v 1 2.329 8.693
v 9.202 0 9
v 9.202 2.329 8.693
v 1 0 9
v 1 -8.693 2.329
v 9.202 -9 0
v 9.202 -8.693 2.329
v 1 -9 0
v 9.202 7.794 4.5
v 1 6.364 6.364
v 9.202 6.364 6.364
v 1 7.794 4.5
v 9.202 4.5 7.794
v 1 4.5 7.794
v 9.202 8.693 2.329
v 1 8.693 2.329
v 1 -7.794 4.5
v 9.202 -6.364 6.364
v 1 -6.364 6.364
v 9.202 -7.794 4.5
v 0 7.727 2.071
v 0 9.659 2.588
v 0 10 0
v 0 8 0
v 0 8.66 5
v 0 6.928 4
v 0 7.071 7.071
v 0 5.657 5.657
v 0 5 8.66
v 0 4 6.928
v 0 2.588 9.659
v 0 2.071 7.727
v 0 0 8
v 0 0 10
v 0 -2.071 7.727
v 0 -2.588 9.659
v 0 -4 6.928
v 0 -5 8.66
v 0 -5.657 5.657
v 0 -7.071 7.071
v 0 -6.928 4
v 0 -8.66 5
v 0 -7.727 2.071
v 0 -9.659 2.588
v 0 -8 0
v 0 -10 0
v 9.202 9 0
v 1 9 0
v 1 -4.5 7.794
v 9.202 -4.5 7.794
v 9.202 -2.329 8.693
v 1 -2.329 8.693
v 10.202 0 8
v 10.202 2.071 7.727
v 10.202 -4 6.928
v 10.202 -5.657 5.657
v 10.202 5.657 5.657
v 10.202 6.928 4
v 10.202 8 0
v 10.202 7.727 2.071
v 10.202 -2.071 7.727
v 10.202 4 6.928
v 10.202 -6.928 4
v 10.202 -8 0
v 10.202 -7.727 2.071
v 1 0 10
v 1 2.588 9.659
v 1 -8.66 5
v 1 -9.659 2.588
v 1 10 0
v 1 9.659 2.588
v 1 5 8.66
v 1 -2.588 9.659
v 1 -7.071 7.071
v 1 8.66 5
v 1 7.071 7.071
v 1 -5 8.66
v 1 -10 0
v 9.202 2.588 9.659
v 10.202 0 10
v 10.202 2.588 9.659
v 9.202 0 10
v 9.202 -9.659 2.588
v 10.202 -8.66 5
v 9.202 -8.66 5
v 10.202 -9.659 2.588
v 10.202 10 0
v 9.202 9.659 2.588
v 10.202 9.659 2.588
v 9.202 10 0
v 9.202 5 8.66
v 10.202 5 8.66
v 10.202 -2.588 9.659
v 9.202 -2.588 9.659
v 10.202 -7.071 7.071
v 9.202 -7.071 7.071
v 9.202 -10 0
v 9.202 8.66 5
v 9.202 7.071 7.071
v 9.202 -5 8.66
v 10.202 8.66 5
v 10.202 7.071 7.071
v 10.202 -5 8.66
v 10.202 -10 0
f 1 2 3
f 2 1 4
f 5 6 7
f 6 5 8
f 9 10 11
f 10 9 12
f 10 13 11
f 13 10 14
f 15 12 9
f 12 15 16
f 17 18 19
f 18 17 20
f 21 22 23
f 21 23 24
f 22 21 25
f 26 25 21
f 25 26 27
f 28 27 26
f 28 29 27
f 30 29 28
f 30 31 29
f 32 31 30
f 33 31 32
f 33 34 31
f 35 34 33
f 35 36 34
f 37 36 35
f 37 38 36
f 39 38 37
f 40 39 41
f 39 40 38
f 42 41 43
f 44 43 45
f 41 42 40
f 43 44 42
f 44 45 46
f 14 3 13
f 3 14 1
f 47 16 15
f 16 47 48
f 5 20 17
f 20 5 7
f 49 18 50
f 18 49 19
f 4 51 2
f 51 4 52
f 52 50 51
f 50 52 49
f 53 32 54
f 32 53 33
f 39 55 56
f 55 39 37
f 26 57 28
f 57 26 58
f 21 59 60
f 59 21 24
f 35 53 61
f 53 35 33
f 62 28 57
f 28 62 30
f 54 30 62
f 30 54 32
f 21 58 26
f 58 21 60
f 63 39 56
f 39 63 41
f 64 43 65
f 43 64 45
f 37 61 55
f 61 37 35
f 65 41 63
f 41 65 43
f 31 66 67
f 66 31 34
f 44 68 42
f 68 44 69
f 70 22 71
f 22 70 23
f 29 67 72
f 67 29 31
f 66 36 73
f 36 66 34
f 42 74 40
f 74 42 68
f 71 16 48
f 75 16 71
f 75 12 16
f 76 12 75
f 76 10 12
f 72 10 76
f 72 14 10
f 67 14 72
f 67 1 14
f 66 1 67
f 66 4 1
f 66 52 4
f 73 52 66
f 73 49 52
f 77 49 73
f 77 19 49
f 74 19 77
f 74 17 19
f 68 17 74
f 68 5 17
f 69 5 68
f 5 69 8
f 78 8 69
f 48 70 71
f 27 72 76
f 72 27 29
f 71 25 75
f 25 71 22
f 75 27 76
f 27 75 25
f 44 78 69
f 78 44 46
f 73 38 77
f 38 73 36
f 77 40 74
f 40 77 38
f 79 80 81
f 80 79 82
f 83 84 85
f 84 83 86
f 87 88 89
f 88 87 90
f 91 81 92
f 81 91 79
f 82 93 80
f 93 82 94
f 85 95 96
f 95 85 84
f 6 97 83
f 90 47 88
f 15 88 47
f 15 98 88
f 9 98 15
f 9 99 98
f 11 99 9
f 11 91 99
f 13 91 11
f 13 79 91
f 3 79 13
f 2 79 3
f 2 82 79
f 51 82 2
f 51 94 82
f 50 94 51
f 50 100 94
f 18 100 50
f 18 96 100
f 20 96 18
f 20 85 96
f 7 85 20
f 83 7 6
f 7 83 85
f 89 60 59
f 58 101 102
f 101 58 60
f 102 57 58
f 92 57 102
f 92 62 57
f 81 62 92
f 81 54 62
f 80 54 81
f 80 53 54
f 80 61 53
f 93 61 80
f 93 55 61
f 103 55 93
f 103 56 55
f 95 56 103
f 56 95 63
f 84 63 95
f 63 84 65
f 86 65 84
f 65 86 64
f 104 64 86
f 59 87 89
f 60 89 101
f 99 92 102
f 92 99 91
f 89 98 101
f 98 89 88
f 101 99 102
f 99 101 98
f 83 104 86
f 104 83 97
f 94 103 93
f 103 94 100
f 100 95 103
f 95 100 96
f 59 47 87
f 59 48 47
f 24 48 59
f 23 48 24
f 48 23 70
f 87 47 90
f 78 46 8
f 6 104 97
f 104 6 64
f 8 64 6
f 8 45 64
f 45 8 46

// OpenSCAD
// file: ../build_environments.scad
// build_environments.scad: modules to build level sections
//

module pool(diameter=10.0, wall_height=2.0, step_width=3.0, connections=[])
{
    difference() {
        union() {
        difference() {
            cylinder(h=0.5,r1=diameter+step_width,r2=diameter+step_width,$fn=48);
            translate([0,0,-0.1])
                cylinder(h=0.7,r1=diameter,r2=diameter,$fn=48);
        }
        difference() {
            cylinder(h=wall_height,r1=diameter+step_width+1.0,r2=diameter+step_width+1.0,$fn=48);
            translate([0,0,-0.1])
                cylinder(h=wall_height+0.2,r1=diameter+step_width,r2=diameter+step_width,$fn=48);
        }
        }
    
        for (c = connections)
        {
            rotate([0,90,0]) {
                angle = atan2(c[1],c[0]);
                rotate([-angle,0,0]) {
                    cylinder(h=diameter+5.0,r1=c[2],r2=c[2],$fn=48);
                }
            }
        }
    }
}

module straight(length=10.0, width=2.0, dy1=0.0, dy2=0.0, dz=0.0)
{
    dims = [0, 0, 0, 0, 0, (dz/length)];
    matrix = [
        [ 1, dims[0], dims[1], 0 ],
        [ dims[2], 1, dims[4], 0 ],
        [ dims[5], dims[3], 1, 0 ],
        [ 0, 0, 0, 1 ]
    ];
    multmatrix(matrix)
    difference() {
        translate([dy1,0,0])
        union() {
            rotate([0,90,0]) {
                difference() {
                    cylinder(h=(length-dy1-dy2),r1=width+1.0,r2=width+1.0,$fn=24);
                    translate([0,0,-0.1])
                        cylinder(h=(length-dy1-dy2+0.2),r1=width,r2=width,$fn=24);
                }
                difference() {
                    cylinder(h=1.0,r1=width+2.0,r2=width+2.0,$fn=24);
                    translate([0,0,-0.1])
                        cylinder(h=1.2,r1=width,r2=width,$fn=24);
                }
                translate([0,0,(length-dy1-dy2)-1.0]) {
                    difference() {
                        cylinder(h=1.0,r1=width+2.0,r2=width+2.0,$fn=24);
                        translate([0,0,-0.1])
                            cylinder(h=1.2,r1=width,r2=width,$fn=24);
                    }
                }
            }
        }
        translate([0,0,-(2*width+4.0)/2])
            cube([3*length,3*length,2*width+4.0],center=true);
    }
}

module curve(p0=[0,0], center=[0,0], dir=1, angle=0.0, width=2.0)
{
    radius = sqrt((p0[0]-center[0])*(p0[0]-center[0]) + (p0[1]-center[1])*(p0[1]-center[1]));
    if (dir == 0) {
        difference() {
            rotate([0,0,-90])
            difference() {
                rotate_extrude(angle = angle, convexity = 10, $fn=32)
                    translate([radius, 0, 0])
                        circle(r = width+1.0,$fn=24);
                rotate([0,0,-1.0])
                    rotate_extrude(angle = angle+2.0, convexity = 10, $fn=32)
                        translate([radius, 0, 0])
                            circle(r = width,$fn=24);
            }
            translate([0,0,-(2*width+4.0)/2])
                cube([5*radius,5*radius,2*width+4.0],center=true);
        }
    }
    else {
        difference() {
            rotate([0,0,90])
            difference() {
                rotate_extrude(angle = -angle, convexity = 10, $fn=32)
                    translate([radius, 0, 0])
                        circle(r = width+1.0,$fn=24);
                rotate([0,0,1.0])
                    rotate_extrude(angle = -angle-2.0, convexity = 10, $fn=32)
                        translate([radius, 0, 0])
                            circle(r = width,$fn=24);
            }
            translate([0,0,-(2*width+4.0)/2])
                cube([5*radius,5*radius,2*width+4.0],center=true);
        }
    }

}

// test pool
//pool(diameter=12.0000, wall_height=3.0000, step_width=3.0000, connections=[[0.0000,-26.0000,2.0000], [23.6074,0.0000,2.0000]]);

// test straight, slope
//straight(length=26.0000, width=2.0000, dy1=11.8322, dy2=6.7082, dz=0.0000);
//straight(length=29.1549, width=12.0000, dy1=0.0000, dy2=0.0000, dz=-15.0000);

// test curve
//curve(p0=[23.6074, 0.0000], center=[23.6074, 5.0000], dir=0, angle=60.1011, width=2.0000);
//curve(p0=[33.6426, 12.4219], center=[37.9771, 9.9295], dir=1, angle=120.4627, width=2.0000);
// main file
use <../build_environments.scad>;
straight(length=10.2025, width=8.0000, dy1=0.0000, dy2=0.0000, dz=0.0000);
